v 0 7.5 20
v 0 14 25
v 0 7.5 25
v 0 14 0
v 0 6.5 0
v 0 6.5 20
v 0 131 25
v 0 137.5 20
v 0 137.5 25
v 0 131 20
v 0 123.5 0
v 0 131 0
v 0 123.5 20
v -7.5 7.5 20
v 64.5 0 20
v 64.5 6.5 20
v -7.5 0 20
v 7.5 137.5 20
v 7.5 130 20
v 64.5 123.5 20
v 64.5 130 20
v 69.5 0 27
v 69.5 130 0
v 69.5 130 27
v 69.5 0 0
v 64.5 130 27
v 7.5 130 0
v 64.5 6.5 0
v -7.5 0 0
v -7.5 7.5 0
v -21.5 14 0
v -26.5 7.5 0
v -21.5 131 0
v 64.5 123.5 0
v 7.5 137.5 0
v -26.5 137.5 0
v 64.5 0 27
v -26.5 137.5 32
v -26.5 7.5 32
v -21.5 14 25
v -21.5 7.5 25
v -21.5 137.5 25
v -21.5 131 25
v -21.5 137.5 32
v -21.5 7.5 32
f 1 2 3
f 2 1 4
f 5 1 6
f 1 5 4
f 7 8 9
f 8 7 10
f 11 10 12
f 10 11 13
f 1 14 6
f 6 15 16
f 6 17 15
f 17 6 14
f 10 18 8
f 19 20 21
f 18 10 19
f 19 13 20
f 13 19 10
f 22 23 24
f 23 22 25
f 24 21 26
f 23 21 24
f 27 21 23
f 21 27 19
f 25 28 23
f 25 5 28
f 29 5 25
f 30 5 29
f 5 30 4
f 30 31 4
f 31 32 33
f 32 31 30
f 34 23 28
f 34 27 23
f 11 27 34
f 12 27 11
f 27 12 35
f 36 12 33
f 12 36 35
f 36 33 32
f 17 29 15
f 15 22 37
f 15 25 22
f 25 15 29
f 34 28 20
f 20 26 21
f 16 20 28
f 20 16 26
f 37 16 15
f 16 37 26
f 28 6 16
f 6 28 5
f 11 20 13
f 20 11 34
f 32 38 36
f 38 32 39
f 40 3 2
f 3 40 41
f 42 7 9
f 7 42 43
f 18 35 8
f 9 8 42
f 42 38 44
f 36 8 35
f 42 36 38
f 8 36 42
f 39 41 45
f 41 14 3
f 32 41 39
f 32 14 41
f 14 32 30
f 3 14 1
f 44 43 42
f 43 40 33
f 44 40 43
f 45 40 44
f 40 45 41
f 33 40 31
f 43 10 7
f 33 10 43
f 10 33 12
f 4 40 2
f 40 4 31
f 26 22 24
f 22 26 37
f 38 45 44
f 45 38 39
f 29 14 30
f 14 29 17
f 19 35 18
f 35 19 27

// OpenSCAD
keywidth=21.5;
wide=keywidth*3;
wlip = 5;
tall=20;
tallest = 25;
long=130;
lip = 13;
jog = 7.5;
braceheight=7;

translate([wide,0,0]) cube([wlip,long, tall + braceheight]);
translate([-keywidth-wlip,jog,0]) cube([wlip,long, tallest + braceheight]);

translate([-jog,0,0]) cube([jog,jog,tall]);
translate([0,long,0]) cube([jog,jog,tall]);


difference(){
cube([wide+wlip,long, tall]);
translate([0,lip/2,0])
cube([wide, long-lip,tall]);
}

translate([-keywidth-wlip,jog,0])
difference(){
cube([keywidth+wlip,long, tallest]);
translate([wlip,lip/2,0])
cube([keywidth, long-lip,tallest]);
}
